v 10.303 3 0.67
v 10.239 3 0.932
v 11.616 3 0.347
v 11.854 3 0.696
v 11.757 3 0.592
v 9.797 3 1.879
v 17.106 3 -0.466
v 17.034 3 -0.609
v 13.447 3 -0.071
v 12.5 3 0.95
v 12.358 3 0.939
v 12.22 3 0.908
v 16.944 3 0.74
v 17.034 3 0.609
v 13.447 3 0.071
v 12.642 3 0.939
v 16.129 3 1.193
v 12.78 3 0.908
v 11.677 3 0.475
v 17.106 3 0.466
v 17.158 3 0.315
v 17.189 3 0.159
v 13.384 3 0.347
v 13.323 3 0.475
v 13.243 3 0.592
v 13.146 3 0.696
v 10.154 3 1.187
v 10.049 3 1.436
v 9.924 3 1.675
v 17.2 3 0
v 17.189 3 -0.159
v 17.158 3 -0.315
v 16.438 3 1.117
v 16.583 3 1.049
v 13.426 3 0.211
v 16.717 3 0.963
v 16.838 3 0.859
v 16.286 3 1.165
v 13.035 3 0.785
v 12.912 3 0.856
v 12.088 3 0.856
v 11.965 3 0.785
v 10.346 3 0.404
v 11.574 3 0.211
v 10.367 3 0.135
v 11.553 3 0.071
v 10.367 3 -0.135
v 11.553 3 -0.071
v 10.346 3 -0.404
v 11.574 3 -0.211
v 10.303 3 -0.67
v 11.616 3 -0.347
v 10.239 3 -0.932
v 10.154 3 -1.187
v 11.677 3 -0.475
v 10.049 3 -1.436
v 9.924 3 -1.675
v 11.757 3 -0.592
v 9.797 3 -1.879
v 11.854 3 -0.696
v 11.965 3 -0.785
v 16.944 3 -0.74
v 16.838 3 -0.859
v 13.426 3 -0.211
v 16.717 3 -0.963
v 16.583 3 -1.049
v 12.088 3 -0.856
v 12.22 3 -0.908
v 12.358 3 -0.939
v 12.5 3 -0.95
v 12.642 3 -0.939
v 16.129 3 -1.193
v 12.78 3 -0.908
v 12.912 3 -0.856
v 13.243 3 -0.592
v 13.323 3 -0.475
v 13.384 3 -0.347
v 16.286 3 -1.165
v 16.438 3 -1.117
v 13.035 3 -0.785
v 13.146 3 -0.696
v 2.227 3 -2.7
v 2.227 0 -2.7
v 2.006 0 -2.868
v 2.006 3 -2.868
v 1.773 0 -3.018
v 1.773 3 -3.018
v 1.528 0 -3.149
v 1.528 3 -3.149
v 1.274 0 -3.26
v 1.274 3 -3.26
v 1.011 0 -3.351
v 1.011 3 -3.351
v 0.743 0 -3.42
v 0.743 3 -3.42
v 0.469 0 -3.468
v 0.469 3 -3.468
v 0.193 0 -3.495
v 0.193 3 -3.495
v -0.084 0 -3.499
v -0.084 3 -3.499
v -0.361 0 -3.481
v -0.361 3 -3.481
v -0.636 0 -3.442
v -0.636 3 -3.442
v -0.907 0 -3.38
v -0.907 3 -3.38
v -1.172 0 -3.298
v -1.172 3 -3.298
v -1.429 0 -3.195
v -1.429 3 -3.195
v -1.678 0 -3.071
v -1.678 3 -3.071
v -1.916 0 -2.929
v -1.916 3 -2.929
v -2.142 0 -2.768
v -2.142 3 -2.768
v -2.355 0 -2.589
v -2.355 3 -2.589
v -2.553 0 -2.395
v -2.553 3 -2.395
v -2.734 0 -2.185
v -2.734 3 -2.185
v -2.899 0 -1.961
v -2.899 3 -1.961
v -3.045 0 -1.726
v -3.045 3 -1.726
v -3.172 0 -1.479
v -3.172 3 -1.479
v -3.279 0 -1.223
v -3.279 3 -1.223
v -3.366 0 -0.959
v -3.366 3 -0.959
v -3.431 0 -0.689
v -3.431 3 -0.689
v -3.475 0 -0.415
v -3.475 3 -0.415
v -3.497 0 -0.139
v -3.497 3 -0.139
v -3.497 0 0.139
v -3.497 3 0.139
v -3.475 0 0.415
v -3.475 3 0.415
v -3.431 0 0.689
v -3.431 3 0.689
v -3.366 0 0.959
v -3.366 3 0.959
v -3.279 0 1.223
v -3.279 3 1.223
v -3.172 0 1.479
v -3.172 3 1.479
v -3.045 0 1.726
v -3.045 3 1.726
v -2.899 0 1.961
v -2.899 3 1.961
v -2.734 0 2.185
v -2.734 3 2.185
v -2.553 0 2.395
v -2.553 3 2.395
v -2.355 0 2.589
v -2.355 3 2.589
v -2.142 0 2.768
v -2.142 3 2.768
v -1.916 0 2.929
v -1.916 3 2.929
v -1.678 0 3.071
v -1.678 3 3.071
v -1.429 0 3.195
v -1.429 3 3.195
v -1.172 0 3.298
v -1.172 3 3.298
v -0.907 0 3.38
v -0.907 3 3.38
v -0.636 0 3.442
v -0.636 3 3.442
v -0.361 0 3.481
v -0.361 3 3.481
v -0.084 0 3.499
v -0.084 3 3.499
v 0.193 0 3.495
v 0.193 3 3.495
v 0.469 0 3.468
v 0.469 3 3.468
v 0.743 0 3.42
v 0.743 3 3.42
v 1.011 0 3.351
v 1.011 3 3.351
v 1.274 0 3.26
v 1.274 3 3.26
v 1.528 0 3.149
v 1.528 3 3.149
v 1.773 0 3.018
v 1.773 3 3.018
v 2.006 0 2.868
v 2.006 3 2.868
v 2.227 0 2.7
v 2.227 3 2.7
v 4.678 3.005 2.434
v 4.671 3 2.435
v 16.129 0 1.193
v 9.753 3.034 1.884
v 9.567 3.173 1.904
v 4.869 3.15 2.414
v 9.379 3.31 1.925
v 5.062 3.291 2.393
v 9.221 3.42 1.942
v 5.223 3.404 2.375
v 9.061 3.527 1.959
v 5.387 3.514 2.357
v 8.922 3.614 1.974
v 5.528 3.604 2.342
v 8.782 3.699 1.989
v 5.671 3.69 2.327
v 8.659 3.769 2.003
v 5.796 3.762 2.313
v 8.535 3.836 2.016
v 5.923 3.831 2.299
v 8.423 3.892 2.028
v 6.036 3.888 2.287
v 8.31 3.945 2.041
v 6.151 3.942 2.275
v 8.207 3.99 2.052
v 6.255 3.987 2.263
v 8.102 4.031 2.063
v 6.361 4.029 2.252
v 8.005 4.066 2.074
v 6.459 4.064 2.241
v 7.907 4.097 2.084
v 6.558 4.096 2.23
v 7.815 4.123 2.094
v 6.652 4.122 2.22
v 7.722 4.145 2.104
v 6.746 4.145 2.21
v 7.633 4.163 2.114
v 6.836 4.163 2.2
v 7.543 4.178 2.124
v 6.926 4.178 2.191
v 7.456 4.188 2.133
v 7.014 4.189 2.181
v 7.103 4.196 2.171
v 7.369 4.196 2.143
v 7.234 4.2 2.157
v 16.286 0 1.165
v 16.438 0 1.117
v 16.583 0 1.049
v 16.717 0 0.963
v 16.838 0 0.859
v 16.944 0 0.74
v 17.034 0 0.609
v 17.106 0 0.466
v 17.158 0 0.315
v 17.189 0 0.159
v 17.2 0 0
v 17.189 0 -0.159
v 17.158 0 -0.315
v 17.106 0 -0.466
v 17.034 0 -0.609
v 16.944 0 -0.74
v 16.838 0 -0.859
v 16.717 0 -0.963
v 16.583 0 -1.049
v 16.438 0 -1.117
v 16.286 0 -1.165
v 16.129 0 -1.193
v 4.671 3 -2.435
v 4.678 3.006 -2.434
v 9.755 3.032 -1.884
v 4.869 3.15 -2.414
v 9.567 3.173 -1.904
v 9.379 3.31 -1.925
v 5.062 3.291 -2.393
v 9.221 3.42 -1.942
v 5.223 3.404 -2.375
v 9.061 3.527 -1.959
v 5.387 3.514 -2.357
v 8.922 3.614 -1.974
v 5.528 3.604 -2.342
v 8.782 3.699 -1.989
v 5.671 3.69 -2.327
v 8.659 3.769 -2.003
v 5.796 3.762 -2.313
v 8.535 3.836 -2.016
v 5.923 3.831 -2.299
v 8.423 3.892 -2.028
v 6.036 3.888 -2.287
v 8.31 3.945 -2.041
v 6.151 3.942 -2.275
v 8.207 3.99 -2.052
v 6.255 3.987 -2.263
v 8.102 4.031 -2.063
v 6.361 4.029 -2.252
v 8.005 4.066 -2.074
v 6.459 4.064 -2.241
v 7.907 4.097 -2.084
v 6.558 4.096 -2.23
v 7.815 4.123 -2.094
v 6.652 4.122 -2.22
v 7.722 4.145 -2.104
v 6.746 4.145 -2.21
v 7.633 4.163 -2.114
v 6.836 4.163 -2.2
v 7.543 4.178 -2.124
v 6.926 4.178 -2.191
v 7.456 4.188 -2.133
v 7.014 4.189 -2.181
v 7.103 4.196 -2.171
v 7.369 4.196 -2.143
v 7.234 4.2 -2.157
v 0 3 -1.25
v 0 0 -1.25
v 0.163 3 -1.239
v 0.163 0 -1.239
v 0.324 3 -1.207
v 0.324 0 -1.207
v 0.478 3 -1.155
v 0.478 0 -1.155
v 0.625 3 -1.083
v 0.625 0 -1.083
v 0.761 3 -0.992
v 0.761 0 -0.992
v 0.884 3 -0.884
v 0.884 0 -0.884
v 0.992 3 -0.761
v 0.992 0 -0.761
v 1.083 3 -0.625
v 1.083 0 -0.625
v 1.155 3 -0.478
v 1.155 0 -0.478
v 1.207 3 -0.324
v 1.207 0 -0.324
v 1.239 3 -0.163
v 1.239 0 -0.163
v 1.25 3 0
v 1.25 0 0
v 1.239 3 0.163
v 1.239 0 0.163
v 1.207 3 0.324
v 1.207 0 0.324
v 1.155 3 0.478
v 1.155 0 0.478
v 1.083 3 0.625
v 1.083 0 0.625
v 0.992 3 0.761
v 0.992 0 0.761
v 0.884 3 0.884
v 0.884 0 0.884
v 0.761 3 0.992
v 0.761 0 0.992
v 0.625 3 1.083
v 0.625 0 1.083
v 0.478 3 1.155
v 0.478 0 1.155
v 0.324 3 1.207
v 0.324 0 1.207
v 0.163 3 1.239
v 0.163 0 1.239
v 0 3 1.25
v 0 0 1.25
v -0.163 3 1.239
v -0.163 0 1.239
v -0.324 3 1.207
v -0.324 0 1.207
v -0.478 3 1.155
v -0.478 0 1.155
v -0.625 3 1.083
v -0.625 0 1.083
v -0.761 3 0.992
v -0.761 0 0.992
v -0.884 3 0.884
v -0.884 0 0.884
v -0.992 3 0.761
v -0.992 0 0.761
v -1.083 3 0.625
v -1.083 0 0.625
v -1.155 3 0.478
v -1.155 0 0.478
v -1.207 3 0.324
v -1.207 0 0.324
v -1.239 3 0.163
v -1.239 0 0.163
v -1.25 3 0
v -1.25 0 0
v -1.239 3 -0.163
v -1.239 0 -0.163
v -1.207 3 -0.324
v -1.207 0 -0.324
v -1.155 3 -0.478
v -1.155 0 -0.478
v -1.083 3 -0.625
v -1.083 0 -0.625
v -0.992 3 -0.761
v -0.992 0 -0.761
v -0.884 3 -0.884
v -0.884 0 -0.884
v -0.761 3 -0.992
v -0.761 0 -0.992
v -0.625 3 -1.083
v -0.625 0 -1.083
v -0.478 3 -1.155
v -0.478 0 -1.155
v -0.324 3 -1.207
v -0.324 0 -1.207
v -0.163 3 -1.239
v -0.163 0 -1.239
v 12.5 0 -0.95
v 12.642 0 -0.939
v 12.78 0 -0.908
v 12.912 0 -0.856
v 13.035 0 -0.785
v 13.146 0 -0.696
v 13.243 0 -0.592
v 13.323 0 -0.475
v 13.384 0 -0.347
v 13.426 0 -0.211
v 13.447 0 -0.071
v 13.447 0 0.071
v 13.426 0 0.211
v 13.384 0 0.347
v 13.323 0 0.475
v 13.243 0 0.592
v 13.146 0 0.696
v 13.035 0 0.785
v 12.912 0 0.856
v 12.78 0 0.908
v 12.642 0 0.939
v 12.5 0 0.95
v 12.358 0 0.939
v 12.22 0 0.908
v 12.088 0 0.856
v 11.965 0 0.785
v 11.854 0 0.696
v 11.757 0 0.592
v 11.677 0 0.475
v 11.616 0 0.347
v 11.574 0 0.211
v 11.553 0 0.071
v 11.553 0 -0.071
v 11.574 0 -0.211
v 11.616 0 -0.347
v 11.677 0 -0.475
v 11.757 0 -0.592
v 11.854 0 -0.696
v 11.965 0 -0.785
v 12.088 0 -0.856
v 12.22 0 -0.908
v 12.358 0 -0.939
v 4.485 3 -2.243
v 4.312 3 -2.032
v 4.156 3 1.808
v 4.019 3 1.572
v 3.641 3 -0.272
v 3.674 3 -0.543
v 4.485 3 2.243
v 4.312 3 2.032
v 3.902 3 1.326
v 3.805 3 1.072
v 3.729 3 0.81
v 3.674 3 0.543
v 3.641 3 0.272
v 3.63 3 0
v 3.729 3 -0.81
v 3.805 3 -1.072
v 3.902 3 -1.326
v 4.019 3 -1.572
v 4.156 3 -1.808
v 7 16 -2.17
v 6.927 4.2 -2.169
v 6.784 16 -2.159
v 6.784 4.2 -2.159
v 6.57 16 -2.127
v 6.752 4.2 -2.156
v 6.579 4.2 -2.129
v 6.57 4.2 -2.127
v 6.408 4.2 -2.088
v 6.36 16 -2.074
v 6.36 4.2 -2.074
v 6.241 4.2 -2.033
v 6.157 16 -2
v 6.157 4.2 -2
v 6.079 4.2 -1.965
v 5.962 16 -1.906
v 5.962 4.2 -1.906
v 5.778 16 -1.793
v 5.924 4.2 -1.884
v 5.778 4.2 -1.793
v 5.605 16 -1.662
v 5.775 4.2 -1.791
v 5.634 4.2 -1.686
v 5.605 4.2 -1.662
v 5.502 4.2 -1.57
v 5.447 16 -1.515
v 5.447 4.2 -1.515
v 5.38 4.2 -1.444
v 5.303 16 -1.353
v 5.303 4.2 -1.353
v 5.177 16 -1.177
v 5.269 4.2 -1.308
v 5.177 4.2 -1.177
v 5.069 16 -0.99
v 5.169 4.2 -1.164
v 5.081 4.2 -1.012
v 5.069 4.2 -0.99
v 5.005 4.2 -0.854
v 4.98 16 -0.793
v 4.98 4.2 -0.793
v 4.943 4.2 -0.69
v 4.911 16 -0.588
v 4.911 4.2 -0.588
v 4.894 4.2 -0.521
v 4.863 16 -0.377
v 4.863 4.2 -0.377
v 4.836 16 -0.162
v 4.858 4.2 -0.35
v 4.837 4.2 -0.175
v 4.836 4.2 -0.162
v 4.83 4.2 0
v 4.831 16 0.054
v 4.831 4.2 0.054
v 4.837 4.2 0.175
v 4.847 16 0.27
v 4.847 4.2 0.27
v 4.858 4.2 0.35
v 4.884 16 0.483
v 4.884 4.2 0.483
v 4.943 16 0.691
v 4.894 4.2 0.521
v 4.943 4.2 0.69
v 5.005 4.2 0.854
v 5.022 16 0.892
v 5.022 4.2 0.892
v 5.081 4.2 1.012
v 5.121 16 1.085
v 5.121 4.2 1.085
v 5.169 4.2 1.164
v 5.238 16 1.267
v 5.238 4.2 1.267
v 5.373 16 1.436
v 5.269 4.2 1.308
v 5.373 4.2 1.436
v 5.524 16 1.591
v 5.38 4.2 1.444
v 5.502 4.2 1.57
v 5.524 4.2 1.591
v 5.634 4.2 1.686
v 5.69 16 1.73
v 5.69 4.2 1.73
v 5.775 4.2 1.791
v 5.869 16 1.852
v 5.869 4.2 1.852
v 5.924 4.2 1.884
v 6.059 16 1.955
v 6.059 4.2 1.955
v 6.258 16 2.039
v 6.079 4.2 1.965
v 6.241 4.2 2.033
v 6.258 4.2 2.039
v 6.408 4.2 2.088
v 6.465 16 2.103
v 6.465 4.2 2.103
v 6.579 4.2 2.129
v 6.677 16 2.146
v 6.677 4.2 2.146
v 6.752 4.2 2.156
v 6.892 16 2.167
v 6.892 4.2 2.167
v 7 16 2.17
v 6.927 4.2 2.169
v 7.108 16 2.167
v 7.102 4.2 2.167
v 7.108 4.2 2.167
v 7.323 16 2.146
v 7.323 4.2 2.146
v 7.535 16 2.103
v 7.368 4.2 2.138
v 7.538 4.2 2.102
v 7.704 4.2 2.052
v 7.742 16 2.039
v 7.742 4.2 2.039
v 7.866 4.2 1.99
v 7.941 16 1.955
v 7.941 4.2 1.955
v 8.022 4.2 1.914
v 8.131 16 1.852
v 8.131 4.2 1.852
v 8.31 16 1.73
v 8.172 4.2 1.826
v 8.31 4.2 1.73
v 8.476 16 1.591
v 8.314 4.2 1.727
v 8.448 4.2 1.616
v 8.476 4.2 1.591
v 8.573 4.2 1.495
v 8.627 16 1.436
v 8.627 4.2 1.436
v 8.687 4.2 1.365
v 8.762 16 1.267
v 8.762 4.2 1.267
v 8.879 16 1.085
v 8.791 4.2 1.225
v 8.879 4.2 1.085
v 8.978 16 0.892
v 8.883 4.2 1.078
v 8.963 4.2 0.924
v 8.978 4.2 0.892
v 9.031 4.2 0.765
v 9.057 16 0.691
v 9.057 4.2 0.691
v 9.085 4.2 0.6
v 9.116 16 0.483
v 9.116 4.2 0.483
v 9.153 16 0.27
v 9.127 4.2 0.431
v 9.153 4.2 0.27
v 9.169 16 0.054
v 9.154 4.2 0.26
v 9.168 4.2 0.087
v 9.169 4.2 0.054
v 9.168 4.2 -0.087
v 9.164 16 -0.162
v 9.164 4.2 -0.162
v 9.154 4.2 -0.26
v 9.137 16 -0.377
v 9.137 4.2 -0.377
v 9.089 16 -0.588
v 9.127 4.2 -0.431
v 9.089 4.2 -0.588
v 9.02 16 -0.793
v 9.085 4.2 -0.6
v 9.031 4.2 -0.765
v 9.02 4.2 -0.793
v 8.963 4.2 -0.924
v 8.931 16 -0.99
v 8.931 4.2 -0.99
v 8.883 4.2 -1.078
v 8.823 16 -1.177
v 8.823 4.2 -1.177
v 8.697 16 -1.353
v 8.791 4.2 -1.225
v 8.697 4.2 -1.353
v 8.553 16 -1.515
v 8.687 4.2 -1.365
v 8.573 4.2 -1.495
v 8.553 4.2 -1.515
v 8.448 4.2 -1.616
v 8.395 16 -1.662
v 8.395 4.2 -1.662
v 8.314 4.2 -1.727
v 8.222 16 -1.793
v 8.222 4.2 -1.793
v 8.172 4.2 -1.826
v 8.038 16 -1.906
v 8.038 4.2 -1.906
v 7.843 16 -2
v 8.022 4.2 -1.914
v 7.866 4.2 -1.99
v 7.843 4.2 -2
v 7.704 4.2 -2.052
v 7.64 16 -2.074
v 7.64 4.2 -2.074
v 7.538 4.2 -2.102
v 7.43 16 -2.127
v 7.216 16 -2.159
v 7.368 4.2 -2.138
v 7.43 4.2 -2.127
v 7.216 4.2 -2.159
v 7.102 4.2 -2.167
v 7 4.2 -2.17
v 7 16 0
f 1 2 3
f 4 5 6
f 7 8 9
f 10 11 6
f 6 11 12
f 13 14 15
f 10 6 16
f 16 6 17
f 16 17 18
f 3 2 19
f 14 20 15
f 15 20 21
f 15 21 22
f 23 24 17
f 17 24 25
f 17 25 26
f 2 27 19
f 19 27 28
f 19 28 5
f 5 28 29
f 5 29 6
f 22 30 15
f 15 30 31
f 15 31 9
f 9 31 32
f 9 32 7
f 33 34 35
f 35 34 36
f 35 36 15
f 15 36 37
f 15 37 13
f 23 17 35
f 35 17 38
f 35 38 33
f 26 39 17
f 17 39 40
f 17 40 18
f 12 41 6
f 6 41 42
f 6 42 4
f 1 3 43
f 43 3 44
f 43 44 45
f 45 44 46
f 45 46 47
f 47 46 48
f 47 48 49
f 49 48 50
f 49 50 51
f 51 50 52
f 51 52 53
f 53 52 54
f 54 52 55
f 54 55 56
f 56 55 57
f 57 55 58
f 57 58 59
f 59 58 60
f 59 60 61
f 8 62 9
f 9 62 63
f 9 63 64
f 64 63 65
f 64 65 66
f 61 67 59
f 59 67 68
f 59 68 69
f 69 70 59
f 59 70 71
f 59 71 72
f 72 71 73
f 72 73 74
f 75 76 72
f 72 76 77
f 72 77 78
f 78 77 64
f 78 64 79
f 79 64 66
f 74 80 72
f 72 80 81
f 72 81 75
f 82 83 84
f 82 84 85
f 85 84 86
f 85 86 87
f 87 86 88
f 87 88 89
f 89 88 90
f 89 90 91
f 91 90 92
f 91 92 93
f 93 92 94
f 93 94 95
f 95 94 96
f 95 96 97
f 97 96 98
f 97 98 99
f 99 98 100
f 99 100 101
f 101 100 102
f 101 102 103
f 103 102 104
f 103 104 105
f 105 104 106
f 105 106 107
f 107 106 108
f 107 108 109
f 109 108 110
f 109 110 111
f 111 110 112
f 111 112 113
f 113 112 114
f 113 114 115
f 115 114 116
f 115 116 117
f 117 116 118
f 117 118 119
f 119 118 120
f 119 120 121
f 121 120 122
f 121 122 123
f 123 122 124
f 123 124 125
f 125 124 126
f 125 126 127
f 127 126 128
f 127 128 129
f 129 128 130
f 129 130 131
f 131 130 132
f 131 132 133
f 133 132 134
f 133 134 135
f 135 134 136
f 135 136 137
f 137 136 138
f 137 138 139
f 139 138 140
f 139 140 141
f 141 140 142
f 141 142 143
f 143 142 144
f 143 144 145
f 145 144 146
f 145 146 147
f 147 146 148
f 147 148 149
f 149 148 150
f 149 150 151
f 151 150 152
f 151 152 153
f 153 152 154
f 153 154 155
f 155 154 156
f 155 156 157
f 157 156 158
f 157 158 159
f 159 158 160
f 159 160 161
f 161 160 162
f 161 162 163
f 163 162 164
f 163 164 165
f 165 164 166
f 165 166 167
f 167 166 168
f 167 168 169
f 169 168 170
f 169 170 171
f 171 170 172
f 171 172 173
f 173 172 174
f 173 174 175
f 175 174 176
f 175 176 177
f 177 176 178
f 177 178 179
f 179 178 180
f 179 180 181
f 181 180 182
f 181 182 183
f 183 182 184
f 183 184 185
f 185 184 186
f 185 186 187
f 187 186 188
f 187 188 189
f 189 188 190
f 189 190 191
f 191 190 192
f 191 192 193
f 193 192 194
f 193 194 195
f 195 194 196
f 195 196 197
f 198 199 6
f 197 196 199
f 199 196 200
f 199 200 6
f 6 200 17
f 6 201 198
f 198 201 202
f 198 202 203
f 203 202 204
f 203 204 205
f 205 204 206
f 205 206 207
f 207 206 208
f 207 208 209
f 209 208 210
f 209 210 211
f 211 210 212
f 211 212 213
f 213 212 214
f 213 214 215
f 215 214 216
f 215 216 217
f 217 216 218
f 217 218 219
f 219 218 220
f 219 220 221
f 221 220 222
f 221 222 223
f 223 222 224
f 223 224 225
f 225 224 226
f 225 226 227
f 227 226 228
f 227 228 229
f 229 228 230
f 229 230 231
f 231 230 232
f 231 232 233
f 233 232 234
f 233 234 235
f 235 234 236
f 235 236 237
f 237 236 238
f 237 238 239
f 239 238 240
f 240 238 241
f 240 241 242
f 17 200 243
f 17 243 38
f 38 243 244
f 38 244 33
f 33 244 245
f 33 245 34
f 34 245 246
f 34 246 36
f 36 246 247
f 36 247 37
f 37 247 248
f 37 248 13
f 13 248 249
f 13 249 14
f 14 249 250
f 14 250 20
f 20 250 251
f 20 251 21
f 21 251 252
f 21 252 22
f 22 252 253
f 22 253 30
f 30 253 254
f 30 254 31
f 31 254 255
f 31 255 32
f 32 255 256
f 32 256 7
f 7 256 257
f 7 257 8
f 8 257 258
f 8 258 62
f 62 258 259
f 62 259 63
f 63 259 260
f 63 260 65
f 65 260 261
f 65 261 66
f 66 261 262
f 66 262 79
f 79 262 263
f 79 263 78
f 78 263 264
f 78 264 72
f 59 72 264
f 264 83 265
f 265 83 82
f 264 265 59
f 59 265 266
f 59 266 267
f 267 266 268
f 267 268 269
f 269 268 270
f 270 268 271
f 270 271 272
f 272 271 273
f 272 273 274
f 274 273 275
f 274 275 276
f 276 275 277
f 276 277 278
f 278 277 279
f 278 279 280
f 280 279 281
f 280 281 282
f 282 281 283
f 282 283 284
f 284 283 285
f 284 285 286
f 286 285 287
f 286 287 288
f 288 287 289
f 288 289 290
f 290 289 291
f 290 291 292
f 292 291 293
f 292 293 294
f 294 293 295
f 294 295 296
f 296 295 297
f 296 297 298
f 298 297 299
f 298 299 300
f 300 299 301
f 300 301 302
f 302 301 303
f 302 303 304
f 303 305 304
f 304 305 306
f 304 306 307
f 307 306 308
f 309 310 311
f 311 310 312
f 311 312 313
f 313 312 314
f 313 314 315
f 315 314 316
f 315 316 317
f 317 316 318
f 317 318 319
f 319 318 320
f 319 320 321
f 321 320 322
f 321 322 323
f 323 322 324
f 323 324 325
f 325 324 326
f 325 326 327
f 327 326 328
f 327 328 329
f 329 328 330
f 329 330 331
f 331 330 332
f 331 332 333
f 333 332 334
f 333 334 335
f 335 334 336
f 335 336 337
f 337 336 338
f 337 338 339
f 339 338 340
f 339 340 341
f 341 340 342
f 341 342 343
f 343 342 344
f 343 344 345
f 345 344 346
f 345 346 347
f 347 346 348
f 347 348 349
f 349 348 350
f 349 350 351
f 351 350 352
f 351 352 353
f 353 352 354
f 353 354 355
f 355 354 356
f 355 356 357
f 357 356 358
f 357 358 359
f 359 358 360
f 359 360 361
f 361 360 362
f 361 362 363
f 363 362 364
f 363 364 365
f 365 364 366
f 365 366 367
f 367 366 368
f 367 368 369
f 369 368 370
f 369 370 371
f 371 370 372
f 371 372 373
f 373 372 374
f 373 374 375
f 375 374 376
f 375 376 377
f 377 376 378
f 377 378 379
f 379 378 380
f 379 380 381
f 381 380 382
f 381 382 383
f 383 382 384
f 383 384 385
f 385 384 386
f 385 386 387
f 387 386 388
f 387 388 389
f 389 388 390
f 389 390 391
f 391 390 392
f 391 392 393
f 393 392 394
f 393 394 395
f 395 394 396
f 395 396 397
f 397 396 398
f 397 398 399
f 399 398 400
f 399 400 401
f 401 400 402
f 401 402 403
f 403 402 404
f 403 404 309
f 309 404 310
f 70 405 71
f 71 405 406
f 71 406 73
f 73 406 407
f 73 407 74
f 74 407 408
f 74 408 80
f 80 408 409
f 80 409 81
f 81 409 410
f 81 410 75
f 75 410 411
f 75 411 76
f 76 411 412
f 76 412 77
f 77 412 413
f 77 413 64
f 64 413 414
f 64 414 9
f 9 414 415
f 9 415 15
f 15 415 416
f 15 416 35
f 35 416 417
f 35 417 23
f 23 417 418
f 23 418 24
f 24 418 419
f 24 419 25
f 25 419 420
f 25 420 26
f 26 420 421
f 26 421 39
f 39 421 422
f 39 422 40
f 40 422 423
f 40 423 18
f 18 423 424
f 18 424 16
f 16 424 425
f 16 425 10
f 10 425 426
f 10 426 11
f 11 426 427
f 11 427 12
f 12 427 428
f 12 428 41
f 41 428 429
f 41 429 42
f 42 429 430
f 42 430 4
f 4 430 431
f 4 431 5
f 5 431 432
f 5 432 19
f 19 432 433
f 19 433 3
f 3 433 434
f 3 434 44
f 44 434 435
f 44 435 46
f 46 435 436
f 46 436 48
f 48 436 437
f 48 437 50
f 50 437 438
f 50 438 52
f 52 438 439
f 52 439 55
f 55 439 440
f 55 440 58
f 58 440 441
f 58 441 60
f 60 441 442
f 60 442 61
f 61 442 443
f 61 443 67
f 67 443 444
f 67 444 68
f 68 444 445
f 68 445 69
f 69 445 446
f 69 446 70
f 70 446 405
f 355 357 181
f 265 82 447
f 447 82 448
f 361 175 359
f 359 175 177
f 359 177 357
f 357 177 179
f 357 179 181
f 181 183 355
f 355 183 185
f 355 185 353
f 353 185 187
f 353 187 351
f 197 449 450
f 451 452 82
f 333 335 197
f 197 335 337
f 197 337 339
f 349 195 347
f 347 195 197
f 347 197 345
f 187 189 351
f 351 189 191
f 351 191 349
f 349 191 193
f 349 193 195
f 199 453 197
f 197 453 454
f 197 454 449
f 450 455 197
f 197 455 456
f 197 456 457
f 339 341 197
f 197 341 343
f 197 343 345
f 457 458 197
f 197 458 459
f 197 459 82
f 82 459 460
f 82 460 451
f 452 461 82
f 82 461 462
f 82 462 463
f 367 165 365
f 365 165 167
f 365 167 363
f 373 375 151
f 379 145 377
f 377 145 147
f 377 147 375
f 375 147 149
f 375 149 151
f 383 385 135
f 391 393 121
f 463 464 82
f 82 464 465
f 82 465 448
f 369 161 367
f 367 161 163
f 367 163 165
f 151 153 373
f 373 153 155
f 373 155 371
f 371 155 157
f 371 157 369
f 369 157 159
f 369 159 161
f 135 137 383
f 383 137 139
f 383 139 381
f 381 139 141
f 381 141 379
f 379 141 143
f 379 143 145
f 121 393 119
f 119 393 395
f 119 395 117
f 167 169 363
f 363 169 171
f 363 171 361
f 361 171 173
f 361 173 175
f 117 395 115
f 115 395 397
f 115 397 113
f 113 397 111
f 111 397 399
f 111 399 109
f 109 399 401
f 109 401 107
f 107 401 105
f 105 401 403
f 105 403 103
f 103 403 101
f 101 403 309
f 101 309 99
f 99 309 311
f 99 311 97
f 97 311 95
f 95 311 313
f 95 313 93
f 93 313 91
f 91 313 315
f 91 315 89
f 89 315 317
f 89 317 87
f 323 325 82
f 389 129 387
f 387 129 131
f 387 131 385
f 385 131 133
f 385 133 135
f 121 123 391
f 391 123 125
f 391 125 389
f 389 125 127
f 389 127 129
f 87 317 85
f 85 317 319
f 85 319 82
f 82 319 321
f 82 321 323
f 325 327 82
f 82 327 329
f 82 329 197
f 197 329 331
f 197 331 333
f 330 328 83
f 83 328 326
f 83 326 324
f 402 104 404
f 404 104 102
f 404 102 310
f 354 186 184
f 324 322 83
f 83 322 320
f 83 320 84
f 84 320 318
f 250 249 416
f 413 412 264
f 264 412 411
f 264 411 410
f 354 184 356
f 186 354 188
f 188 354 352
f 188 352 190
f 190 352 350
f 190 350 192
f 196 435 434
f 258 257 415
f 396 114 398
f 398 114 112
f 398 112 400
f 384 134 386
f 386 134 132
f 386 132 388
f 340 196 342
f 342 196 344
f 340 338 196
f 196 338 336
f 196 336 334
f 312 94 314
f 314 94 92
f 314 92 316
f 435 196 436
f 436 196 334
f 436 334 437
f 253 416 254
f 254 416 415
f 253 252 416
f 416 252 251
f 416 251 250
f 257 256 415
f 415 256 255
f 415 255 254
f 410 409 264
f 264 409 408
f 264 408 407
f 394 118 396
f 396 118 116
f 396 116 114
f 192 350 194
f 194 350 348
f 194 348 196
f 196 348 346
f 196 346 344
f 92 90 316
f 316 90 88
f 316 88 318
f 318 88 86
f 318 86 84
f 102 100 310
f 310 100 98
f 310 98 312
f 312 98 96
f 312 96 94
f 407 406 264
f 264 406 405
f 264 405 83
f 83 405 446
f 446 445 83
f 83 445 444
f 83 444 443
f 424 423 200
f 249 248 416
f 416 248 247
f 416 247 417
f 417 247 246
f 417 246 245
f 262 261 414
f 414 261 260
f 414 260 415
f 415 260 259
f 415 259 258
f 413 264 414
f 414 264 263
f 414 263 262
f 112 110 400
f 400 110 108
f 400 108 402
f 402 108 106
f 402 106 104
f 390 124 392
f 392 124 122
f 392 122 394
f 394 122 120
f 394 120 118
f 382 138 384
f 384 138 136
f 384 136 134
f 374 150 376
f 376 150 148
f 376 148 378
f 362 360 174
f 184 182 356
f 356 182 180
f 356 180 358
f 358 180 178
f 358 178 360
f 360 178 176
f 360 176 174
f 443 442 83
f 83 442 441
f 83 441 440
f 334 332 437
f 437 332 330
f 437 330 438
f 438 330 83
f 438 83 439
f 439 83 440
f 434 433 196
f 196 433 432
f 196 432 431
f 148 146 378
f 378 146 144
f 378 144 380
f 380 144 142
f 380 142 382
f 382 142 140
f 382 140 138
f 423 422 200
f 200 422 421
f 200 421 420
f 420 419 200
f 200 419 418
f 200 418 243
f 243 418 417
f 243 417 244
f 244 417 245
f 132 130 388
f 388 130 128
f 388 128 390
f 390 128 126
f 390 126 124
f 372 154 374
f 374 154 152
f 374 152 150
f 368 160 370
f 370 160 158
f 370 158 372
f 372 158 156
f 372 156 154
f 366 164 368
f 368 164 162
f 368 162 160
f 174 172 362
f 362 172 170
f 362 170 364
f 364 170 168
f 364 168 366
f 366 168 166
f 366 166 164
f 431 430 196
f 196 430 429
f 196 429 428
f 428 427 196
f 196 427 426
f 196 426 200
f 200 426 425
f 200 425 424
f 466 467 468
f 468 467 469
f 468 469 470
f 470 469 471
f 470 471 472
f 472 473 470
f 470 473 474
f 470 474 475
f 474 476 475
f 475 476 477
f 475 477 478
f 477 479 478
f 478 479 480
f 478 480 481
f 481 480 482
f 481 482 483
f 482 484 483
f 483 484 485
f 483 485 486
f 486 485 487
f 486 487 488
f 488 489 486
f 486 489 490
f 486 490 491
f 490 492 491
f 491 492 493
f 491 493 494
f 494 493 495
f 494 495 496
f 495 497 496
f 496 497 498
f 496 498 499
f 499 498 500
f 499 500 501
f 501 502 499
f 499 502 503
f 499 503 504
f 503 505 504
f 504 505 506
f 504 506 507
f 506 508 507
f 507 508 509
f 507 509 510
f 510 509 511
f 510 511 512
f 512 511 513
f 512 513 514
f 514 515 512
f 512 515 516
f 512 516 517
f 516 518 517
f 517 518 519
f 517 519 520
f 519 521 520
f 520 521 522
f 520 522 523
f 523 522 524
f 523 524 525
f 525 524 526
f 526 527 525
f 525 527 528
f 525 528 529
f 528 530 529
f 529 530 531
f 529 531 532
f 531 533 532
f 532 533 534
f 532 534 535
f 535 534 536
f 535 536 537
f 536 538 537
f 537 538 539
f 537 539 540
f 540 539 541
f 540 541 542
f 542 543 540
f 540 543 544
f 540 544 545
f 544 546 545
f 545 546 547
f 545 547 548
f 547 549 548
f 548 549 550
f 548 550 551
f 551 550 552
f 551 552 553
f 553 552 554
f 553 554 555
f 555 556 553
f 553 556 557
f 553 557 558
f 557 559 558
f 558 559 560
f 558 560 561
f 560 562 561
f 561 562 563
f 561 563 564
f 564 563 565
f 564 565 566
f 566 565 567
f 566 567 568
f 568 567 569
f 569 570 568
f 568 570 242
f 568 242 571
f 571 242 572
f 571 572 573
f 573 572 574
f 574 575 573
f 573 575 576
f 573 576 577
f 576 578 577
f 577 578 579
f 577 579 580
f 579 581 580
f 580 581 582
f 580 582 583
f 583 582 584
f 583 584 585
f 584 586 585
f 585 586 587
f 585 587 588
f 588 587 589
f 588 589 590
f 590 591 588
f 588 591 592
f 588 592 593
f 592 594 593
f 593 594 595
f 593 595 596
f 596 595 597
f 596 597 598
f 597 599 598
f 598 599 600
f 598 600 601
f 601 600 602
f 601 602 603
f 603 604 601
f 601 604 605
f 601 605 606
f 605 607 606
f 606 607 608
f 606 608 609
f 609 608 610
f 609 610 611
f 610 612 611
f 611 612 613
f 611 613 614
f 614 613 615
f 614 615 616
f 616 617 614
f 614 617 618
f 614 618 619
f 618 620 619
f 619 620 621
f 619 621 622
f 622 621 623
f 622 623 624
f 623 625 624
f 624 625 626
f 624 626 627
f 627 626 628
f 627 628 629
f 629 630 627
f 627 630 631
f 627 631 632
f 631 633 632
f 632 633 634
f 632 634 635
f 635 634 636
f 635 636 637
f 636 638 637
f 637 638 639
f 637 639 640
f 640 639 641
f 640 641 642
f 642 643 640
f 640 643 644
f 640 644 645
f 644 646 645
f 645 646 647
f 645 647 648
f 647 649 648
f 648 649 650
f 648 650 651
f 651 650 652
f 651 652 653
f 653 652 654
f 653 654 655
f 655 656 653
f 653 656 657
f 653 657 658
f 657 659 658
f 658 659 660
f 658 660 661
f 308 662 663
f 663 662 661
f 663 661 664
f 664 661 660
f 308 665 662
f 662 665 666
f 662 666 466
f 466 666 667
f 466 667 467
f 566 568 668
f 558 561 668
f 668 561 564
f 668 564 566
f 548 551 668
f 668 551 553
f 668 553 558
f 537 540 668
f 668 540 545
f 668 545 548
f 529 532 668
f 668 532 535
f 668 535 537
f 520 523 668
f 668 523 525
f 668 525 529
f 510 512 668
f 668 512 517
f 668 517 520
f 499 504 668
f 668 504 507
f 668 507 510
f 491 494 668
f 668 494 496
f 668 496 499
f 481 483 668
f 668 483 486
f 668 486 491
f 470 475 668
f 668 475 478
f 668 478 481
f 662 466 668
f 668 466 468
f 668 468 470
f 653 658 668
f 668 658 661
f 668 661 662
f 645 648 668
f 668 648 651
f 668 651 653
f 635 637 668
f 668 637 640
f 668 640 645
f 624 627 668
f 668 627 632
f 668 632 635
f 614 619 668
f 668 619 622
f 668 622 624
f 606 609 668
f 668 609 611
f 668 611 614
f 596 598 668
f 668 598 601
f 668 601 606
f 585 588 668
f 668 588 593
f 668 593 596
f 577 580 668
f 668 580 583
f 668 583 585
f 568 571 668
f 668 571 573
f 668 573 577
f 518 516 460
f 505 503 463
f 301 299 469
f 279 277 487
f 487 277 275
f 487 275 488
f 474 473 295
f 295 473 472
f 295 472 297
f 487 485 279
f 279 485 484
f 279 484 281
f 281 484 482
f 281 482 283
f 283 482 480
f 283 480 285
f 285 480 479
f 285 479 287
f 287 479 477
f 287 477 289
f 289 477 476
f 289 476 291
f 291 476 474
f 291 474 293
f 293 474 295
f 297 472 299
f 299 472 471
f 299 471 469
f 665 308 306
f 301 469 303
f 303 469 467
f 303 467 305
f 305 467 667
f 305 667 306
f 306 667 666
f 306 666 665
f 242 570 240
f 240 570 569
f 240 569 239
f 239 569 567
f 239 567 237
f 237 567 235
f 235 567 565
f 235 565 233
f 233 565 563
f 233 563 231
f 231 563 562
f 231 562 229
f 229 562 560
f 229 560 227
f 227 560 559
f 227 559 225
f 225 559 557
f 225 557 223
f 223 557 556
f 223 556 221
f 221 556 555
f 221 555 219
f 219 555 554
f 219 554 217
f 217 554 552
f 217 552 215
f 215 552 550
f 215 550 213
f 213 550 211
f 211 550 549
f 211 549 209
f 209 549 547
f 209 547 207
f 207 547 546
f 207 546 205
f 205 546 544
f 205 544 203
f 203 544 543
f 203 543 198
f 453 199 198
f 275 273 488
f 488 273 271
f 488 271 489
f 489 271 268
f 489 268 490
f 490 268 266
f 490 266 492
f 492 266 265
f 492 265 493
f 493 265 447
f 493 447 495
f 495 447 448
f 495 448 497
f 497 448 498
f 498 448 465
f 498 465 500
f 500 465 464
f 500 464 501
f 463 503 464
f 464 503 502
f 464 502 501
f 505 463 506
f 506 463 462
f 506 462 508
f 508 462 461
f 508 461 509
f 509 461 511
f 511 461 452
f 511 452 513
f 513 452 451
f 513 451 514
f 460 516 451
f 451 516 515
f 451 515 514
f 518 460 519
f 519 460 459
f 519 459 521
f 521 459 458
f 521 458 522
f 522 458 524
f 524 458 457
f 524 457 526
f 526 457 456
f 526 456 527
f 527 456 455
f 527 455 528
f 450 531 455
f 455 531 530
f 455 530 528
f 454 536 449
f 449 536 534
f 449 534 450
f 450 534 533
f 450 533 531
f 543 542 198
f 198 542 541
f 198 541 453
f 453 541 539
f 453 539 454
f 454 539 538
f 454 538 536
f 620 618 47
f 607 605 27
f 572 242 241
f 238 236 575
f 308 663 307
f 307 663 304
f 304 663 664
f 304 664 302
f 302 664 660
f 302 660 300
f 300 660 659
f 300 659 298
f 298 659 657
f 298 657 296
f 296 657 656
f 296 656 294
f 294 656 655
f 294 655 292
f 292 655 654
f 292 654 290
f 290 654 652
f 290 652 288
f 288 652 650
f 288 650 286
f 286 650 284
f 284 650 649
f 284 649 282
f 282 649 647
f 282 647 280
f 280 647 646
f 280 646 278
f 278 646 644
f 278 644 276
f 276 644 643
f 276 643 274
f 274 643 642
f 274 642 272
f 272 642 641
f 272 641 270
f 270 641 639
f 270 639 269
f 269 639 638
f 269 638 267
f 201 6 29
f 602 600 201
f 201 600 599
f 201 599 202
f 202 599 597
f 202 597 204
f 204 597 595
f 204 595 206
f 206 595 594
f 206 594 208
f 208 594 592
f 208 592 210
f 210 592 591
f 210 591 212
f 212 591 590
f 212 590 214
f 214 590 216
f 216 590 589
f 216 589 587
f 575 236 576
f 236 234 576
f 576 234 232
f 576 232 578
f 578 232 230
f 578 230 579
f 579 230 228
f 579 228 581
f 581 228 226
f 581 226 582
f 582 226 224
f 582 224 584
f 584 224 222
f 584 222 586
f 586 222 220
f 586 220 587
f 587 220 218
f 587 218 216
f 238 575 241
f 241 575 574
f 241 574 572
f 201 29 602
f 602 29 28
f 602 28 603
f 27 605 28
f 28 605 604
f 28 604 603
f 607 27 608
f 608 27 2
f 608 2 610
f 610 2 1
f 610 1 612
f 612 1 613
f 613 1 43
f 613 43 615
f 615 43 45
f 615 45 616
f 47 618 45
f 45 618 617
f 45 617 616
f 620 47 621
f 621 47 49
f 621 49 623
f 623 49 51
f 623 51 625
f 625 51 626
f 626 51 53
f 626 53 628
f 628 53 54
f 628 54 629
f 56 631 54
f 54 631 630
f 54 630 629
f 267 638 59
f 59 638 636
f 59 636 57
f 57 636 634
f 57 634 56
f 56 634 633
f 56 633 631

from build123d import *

# Parameters (mm, degrees)
SKETCH1_R           = 0.95
SKETCH1_R_2         = 1.25
BOSS_EXTRUDE1_DEPTH = 3
SKETCH2_R           = 2.169910798
BOSS_EXTRUDE2_DEPTH = 13
CHAMFER1_SIZE       = 1.2


with BuildPart() as part:
    # Sketch1 → Boss-Extrude1 (new body)
    with BuildSketch(Plane(origin=(0, 0, 0), x_dir=(1, 0, 0), z_dir=(0, 1, 0))):
        with BuildLine():
            ThreePointArc((2.227105745, 2.7), (-3.5, 0), (2.227105745, -2.7))
            Line((2.227105745, -2.7), (16.12932144, -1.193011301))
            ThreePointArc((16.12932144, -1.193011301), (17.2, 0), (16.12932144, 1.193011301))
            Line((16.12932144, 1.193011301), (2.227105745, 2.7))
        make_face()
        with Locations(Location((12.5, 0, 0), (0, 0, 270))):
            Circle(SKETCH1_R, mode=Mode.SUBTRACT)
        with Locations(Location((0, 0, 0), (0, 0, 270))):
            Circle(SKETCH1_R_2, mode=Mode.SUBTRACT)
    extrude(amount=BOSS_EXTRUDE1_DEPTH)

    # Sketch2 → Boss-Extrude2 (add)
    with BuildSketch(Plane(origin=(0, 3, 0), x_dir=(1, 0, 0), z_dir=(0, 1, 0))):
        with Locations(Location((7, 0, 0), (0, 0, 83.813341225))):
            Circle(SKETCH2_R)
    extrude(amount=BOSS_EXTRUDE2_DEPTH)

    # Chamfer1
    # the kernel refuses this chamfer: 1.2 mm, written as the material it adds along each edge
    with BuildSketch(Plane(origin=(7, 3, 0), x_dir=(0.1077678664159532, 0, -0.9941760844881318), z_dir=(0.9941760844881318, 0, 0.1077678664159532))) as chamfer1_piece_1_section:
        Polygon((2.169910798 + CHAMFER1_SIZE, 0), (2.169910798, CHAMFER1_SIZE), (2.169910798, 0), align=None)
    chamfer1_piece_1 = revolve(axis=Axis((7, 3, 0), (0, 1, 0)), revolution_arc=192.373317929, mode=Mode.PRIVATE)
    chamfer1_piece_1 = split(chamfer1_piece_1, bisect_by=Plane(origin=(4.507411797, 3.588560711, 2.452816707), z_dir=(-0.10776786640872232, 0, -0.9941760844889158)), keep=Keep.TOP, mode=Mode.PRIVATE)
    chamfer1_piece_1 = split(chamfer1_piece_1, bisect_by=Plane(origin=(4.507411799, 3.588560711, -2.452816707), z_dir=(-0.10776786640872232, 0, 0.9941760844889158)), keep=Keep.TOP, mode=Mode.PRIVATE)
    add(chamfer1_piece_1)
    with BuildSketch(Plane(origin=(7, 3, 0), x_dir=(0.1077678729849121, 0, 0.9941760837760621), z_dir=(-0.9941760837760621, 0, 0.1077678729849121))) as chamfer1_piece_2_section:
        Polygon((2.169910798 + CHAMFER1_SIZE, 0), (2.169910798, CHAMFER1_SIZE), (2.169910798, 0), align=None)
    chamfer1_piece_2 = revolve(axis=Axis((7, 3, 0), (0, 1, 0)), revolution_arc=167.626682071, mode=Mode.PRIVATE)
    chamfer1_piece_2 = split(chamfer1_piece_2, bisect_by=Plane(origin=(9.961043045, 3.589331186, 1.861647585), z_dir=(-0.10776786640872232, 0, -0.9941760844889158)), keep=Keep.TOP, mode=Mode.PRIVATE)
    chamfer1_piece_2 = split(chamfer1_piece_2, bisect_by=Plane(origin=(9.961043043, 3.589331186, -1.861647585), z_dir=(-0.10776786640872232, 0, 0.9941760844889158)), keep=Keep.TOP, mode=Mode.PRIVATE)
    add(chamfer1_piece_2)


solid = part.part
